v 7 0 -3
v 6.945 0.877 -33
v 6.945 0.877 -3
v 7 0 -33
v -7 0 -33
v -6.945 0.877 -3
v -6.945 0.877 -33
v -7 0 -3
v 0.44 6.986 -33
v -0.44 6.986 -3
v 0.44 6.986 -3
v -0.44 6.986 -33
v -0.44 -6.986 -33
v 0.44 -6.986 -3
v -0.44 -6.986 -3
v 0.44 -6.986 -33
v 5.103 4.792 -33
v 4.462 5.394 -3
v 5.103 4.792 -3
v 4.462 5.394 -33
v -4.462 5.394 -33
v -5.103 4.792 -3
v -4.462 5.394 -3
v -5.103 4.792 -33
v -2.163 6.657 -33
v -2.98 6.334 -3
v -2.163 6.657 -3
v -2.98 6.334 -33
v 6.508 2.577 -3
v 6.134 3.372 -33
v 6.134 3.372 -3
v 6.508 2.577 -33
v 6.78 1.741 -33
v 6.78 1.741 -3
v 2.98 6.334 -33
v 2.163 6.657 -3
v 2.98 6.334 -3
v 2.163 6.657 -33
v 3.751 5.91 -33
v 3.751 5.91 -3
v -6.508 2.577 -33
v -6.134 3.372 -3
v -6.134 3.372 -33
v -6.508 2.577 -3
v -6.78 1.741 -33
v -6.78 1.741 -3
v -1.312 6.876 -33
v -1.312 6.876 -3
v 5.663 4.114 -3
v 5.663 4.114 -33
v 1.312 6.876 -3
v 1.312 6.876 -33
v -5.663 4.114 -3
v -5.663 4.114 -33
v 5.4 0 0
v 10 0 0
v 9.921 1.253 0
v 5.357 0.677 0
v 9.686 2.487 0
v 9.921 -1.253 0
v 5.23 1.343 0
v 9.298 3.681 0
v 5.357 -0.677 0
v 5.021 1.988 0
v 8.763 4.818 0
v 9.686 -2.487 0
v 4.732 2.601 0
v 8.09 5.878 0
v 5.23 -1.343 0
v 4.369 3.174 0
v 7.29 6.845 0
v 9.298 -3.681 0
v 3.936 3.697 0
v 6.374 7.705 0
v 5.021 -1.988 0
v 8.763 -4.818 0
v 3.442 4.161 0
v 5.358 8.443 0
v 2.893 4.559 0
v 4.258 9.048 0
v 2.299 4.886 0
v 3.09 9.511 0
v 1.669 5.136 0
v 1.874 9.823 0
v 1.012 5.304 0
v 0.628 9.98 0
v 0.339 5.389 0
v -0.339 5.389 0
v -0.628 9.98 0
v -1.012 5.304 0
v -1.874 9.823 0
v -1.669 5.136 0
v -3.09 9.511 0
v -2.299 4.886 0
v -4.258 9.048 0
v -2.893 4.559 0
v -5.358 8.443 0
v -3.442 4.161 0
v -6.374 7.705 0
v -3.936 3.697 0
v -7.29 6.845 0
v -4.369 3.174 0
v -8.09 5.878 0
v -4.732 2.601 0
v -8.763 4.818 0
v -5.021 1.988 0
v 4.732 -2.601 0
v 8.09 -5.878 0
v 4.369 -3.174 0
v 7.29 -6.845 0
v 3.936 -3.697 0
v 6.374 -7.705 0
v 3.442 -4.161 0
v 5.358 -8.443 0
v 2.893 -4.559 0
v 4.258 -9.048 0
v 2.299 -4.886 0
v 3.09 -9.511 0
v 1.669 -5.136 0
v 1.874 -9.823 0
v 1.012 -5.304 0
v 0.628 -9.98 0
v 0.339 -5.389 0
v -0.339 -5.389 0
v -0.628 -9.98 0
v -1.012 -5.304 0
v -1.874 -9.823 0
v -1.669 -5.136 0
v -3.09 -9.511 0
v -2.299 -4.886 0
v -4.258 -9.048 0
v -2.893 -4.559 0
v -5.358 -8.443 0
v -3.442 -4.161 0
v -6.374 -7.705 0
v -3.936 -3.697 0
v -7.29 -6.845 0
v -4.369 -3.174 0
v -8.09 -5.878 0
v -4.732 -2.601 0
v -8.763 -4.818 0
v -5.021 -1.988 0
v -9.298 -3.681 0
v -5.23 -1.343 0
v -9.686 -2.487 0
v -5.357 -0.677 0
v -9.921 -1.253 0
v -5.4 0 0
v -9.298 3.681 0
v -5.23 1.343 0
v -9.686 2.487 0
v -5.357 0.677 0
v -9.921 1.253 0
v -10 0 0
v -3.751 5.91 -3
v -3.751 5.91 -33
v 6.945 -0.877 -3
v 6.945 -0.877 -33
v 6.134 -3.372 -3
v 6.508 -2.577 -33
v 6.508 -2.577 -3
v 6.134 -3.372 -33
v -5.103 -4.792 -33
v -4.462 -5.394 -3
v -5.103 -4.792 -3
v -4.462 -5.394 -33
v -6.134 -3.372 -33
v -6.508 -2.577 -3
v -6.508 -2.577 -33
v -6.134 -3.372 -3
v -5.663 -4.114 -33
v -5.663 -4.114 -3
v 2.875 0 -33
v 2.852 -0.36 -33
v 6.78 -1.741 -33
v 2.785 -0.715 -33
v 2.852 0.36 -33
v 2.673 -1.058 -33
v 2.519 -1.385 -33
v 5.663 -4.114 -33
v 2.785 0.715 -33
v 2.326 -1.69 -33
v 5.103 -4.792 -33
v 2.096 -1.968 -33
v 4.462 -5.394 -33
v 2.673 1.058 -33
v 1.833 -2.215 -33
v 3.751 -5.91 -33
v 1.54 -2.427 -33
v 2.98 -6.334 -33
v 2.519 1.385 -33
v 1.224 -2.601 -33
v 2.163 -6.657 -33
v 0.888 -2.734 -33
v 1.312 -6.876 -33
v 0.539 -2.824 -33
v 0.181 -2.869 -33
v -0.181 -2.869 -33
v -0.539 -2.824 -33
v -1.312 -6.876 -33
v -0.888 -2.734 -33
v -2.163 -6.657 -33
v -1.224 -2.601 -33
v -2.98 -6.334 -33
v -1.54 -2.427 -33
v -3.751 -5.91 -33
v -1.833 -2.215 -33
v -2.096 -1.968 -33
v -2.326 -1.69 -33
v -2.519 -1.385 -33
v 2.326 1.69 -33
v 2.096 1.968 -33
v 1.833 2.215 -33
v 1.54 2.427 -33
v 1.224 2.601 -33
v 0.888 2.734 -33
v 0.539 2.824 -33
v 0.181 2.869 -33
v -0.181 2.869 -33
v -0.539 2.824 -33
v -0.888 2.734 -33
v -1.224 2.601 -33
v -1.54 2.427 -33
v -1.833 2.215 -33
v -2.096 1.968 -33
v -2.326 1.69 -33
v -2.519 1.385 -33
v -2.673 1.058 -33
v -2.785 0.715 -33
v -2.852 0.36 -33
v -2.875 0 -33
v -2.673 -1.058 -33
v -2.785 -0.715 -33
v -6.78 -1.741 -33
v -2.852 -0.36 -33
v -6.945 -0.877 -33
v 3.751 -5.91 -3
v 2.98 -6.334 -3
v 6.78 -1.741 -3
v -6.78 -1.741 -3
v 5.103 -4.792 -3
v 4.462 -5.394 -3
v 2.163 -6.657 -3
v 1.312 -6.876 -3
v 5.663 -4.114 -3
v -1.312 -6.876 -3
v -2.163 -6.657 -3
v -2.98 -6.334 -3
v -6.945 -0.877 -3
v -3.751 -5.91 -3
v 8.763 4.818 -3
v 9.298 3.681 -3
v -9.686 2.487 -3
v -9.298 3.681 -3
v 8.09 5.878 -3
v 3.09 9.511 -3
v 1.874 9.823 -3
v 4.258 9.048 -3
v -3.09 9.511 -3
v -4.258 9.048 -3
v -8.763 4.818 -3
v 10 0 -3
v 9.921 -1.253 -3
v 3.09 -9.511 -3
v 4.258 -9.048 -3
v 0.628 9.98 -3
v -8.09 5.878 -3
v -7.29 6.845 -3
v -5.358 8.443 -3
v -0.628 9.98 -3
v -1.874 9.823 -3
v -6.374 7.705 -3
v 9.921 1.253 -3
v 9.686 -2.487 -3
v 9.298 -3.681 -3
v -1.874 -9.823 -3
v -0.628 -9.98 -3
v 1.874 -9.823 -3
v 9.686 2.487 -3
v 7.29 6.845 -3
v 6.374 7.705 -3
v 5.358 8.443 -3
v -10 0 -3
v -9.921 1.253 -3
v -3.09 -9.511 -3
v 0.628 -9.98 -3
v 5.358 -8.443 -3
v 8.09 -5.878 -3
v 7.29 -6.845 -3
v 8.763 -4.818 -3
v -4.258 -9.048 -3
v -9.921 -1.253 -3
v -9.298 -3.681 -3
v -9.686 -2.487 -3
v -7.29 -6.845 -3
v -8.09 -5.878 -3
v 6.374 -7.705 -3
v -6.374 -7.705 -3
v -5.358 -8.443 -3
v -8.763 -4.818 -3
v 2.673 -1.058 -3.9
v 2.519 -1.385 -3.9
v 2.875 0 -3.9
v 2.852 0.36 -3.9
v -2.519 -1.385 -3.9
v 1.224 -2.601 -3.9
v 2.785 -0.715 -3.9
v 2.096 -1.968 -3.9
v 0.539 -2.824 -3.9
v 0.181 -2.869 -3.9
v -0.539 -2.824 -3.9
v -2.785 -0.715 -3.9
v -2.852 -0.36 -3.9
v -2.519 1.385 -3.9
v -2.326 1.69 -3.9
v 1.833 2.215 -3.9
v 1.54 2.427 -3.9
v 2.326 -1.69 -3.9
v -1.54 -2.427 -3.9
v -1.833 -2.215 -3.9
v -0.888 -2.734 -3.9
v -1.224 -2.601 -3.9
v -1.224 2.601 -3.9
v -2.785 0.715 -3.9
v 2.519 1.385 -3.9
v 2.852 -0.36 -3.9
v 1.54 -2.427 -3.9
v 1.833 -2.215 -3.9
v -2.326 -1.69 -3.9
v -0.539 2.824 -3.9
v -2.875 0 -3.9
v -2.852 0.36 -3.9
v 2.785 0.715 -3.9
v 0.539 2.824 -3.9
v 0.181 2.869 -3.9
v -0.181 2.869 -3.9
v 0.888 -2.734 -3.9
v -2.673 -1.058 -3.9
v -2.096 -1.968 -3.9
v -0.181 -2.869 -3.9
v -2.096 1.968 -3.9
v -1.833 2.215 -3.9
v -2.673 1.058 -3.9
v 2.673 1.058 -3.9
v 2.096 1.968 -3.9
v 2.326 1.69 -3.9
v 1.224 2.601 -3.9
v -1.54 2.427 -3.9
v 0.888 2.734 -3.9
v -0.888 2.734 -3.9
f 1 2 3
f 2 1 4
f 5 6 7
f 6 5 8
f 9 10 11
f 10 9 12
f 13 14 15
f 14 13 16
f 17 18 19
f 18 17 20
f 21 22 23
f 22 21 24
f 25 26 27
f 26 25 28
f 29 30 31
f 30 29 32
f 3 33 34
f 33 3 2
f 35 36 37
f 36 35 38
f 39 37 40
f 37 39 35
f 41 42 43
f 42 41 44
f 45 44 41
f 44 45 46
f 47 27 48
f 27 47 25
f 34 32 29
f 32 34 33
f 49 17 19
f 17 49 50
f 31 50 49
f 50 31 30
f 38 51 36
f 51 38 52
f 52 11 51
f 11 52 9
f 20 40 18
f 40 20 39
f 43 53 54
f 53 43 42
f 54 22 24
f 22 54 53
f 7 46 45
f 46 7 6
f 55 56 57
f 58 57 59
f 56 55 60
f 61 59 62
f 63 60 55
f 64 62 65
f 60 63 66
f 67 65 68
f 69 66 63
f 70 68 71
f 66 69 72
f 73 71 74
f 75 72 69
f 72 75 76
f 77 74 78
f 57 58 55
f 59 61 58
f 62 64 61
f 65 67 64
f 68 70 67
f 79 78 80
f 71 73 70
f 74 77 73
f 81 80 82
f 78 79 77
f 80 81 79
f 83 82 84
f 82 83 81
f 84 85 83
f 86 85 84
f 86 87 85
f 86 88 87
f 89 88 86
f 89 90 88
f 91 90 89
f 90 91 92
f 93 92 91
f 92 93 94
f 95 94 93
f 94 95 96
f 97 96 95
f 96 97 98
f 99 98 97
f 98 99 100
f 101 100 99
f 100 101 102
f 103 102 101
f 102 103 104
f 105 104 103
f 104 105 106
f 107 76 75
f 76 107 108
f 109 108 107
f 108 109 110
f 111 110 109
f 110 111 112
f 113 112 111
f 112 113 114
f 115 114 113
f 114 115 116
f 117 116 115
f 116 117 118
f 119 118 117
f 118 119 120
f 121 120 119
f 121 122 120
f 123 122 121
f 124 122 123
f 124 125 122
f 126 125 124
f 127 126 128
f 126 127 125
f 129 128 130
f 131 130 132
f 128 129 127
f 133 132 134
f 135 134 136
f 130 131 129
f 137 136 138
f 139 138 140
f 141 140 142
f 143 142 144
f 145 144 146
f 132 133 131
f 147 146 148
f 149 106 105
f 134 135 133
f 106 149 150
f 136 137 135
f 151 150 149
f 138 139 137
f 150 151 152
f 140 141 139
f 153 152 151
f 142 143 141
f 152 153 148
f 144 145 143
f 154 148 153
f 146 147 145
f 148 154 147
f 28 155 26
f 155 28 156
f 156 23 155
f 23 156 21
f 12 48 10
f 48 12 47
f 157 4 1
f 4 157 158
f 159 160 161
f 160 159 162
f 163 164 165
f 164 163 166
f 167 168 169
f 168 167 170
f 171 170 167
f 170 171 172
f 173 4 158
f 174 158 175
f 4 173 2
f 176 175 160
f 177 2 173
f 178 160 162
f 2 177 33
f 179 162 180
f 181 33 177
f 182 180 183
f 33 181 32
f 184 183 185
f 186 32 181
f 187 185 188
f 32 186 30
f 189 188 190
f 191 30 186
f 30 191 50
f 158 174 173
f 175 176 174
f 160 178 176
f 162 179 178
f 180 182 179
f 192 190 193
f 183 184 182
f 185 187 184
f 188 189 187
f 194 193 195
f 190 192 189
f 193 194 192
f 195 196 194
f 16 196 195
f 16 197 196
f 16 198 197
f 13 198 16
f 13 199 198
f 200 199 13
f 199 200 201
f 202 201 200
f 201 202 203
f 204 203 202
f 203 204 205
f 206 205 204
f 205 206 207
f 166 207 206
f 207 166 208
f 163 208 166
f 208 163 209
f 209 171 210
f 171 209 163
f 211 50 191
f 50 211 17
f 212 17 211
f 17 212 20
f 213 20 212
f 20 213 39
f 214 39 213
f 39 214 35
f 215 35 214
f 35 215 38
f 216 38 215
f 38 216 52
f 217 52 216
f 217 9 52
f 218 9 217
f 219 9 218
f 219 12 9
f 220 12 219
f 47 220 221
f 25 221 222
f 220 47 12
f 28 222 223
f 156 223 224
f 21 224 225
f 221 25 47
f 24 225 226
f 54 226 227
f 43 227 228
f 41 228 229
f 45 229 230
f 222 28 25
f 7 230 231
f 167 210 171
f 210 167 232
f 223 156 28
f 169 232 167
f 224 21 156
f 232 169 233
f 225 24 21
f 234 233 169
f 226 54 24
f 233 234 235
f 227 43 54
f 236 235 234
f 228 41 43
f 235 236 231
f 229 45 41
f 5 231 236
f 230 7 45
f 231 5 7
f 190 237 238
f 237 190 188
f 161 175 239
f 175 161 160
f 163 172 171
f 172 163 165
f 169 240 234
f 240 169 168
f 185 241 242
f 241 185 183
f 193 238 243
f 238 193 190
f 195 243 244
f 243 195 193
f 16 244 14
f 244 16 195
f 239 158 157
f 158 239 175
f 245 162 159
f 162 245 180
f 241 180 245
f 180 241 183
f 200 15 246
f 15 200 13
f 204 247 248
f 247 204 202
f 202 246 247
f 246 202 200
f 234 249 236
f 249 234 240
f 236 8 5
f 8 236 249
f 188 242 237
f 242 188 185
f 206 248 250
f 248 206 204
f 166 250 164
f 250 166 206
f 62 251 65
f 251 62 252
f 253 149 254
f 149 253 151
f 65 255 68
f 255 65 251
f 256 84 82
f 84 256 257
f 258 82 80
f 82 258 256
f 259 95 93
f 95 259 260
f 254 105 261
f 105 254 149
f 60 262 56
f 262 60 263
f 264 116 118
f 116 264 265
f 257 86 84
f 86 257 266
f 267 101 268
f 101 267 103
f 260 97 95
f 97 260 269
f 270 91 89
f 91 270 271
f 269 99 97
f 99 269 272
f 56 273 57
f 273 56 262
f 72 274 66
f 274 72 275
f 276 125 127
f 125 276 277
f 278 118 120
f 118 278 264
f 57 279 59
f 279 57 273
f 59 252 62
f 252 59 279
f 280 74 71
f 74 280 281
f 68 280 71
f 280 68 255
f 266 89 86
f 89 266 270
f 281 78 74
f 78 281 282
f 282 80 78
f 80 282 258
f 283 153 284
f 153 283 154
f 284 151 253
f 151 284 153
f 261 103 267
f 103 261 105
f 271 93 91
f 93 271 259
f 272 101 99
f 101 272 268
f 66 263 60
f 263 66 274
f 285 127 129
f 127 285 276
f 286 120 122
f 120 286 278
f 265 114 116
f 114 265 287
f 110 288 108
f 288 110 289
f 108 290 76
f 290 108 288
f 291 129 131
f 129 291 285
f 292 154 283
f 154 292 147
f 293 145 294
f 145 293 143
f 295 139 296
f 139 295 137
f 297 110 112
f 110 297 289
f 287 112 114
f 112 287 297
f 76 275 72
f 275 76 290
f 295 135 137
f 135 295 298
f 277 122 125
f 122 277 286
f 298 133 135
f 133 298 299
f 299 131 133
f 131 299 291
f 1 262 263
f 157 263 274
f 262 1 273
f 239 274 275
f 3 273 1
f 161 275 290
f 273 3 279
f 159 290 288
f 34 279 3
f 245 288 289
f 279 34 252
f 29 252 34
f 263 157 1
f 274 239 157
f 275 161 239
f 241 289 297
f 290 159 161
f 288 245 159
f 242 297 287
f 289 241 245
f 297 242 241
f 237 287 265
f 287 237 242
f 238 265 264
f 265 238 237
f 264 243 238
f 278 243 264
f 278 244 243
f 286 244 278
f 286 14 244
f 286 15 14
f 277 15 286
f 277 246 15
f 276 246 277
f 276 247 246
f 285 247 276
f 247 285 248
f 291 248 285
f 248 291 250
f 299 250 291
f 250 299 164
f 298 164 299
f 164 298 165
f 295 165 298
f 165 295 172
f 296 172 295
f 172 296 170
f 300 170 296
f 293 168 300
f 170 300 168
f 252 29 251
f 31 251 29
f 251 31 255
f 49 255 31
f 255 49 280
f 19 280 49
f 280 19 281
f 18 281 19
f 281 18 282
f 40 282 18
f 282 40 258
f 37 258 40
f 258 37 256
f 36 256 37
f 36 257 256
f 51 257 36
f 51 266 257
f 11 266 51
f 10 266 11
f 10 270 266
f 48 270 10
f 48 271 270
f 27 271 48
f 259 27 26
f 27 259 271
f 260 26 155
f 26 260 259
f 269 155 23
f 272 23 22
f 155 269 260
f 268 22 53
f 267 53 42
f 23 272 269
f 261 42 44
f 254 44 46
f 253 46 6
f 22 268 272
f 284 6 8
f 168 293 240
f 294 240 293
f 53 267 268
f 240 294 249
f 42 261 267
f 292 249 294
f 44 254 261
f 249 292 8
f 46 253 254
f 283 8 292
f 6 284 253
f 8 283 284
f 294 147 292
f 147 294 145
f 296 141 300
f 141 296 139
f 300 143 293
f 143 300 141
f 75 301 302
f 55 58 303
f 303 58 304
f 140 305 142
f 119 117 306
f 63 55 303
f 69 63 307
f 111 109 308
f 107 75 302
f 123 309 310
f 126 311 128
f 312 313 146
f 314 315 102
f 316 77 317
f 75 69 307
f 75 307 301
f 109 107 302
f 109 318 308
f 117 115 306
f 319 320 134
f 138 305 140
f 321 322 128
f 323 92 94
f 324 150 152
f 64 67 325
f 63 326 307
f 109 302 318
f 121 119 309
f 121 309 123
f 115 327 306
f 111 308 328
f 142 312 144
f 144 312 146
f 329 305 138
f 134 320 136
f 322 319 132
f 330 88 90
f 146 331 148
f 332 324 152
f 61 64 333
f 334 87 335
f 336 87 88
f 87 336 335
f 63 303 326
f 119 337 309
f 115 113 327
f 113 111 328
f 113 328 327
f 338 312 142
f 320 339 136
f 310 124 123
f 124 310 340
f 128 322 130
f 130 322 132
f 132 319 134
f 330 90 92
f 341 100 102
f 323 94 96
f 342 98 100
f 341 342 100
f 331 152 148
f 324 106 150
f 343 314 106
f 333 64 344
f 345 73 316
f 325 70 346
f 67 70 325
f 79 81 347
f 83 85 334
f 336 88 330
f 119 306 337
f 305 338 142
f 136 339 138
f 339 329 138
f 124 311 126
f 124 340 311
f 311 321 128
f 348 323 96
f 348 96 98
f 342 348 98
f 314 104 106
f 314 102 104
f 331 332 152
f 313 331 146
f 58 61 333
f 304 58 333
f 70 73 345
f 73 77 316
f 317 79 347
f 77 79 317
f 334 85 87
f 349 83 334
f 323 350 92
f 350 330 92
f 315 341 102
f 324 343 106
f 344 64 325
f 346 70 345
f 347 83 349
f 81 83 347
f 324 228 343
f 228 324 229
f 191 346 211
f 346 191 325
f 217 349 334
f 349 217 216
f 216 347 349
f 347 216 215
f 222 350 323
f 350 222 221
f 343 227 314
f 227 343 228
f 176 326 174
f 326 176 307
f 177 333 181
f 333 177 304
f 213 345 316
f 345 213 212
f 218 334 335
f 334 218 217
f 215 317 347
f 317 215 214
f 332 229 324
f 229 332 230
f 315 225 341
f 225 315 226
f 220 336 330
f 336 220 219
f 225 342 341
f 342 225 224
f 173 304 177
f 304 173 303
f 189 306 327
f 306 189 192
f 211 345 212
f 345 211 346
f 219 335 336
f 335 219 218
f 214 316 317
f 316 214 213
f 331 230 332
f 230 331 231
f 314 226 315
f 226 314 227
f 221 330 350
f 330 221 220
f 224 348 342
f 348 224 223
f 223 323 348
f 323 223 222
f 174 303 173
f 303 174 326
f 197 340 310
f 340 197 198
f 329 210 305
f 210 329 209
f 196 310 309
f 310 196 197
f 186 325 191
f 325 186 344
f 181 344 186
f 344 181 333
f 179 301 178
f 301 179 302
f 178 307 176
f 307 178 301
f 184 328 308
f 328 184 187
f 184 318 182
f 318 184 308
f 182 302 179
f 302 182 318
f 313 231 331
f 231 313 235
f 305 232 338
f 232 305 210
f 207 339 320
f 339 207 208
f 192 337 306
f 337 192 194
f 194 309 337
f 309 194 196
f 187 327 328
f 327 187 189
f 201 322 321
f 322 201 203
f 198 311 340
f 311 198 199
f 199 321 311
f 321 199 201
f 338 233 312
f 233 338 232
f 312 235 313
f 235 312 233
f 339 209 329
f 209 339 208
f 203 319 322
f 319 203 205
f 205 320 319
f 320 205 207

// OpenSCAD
$fn = 50;


difference() {
	union() {
		translate(v = [0, 0, -33.0000000000]) {
			cylinder(h = 33, r = 7.0000000000);
		}
		translate(v = [0, 0, -3.0000000000]) {
			cylinder(h = 3, r = 10.0000000000);
		}
	}
	union() {
		translate(v = [0, 0, 0]) {
			rotate(a = [0, 0, 0]) {
				difference() {
					union() {
						#translate(v = [0, 0, -33.0000000000]) {
							cylinder(h = 33, r = 2.6000000000);
						}
						#translate(v = [0, 0, -3.9000000000]) {
							cylinder(h = 3.9000000000, r1 = 2.8750000000, r2 = 5.4000000000);
						}
						#translate(v = [0, 0, -33.0000000000]) {
							cylinder(h = 33, r = 2.8750000000);
						}
						#translate(v = [0, 0, -33.0000000000]) {
							cylinder(h = 33, r = 2.6000000000);
						}
					}
					union();
				}
			}
		}
	}
}
